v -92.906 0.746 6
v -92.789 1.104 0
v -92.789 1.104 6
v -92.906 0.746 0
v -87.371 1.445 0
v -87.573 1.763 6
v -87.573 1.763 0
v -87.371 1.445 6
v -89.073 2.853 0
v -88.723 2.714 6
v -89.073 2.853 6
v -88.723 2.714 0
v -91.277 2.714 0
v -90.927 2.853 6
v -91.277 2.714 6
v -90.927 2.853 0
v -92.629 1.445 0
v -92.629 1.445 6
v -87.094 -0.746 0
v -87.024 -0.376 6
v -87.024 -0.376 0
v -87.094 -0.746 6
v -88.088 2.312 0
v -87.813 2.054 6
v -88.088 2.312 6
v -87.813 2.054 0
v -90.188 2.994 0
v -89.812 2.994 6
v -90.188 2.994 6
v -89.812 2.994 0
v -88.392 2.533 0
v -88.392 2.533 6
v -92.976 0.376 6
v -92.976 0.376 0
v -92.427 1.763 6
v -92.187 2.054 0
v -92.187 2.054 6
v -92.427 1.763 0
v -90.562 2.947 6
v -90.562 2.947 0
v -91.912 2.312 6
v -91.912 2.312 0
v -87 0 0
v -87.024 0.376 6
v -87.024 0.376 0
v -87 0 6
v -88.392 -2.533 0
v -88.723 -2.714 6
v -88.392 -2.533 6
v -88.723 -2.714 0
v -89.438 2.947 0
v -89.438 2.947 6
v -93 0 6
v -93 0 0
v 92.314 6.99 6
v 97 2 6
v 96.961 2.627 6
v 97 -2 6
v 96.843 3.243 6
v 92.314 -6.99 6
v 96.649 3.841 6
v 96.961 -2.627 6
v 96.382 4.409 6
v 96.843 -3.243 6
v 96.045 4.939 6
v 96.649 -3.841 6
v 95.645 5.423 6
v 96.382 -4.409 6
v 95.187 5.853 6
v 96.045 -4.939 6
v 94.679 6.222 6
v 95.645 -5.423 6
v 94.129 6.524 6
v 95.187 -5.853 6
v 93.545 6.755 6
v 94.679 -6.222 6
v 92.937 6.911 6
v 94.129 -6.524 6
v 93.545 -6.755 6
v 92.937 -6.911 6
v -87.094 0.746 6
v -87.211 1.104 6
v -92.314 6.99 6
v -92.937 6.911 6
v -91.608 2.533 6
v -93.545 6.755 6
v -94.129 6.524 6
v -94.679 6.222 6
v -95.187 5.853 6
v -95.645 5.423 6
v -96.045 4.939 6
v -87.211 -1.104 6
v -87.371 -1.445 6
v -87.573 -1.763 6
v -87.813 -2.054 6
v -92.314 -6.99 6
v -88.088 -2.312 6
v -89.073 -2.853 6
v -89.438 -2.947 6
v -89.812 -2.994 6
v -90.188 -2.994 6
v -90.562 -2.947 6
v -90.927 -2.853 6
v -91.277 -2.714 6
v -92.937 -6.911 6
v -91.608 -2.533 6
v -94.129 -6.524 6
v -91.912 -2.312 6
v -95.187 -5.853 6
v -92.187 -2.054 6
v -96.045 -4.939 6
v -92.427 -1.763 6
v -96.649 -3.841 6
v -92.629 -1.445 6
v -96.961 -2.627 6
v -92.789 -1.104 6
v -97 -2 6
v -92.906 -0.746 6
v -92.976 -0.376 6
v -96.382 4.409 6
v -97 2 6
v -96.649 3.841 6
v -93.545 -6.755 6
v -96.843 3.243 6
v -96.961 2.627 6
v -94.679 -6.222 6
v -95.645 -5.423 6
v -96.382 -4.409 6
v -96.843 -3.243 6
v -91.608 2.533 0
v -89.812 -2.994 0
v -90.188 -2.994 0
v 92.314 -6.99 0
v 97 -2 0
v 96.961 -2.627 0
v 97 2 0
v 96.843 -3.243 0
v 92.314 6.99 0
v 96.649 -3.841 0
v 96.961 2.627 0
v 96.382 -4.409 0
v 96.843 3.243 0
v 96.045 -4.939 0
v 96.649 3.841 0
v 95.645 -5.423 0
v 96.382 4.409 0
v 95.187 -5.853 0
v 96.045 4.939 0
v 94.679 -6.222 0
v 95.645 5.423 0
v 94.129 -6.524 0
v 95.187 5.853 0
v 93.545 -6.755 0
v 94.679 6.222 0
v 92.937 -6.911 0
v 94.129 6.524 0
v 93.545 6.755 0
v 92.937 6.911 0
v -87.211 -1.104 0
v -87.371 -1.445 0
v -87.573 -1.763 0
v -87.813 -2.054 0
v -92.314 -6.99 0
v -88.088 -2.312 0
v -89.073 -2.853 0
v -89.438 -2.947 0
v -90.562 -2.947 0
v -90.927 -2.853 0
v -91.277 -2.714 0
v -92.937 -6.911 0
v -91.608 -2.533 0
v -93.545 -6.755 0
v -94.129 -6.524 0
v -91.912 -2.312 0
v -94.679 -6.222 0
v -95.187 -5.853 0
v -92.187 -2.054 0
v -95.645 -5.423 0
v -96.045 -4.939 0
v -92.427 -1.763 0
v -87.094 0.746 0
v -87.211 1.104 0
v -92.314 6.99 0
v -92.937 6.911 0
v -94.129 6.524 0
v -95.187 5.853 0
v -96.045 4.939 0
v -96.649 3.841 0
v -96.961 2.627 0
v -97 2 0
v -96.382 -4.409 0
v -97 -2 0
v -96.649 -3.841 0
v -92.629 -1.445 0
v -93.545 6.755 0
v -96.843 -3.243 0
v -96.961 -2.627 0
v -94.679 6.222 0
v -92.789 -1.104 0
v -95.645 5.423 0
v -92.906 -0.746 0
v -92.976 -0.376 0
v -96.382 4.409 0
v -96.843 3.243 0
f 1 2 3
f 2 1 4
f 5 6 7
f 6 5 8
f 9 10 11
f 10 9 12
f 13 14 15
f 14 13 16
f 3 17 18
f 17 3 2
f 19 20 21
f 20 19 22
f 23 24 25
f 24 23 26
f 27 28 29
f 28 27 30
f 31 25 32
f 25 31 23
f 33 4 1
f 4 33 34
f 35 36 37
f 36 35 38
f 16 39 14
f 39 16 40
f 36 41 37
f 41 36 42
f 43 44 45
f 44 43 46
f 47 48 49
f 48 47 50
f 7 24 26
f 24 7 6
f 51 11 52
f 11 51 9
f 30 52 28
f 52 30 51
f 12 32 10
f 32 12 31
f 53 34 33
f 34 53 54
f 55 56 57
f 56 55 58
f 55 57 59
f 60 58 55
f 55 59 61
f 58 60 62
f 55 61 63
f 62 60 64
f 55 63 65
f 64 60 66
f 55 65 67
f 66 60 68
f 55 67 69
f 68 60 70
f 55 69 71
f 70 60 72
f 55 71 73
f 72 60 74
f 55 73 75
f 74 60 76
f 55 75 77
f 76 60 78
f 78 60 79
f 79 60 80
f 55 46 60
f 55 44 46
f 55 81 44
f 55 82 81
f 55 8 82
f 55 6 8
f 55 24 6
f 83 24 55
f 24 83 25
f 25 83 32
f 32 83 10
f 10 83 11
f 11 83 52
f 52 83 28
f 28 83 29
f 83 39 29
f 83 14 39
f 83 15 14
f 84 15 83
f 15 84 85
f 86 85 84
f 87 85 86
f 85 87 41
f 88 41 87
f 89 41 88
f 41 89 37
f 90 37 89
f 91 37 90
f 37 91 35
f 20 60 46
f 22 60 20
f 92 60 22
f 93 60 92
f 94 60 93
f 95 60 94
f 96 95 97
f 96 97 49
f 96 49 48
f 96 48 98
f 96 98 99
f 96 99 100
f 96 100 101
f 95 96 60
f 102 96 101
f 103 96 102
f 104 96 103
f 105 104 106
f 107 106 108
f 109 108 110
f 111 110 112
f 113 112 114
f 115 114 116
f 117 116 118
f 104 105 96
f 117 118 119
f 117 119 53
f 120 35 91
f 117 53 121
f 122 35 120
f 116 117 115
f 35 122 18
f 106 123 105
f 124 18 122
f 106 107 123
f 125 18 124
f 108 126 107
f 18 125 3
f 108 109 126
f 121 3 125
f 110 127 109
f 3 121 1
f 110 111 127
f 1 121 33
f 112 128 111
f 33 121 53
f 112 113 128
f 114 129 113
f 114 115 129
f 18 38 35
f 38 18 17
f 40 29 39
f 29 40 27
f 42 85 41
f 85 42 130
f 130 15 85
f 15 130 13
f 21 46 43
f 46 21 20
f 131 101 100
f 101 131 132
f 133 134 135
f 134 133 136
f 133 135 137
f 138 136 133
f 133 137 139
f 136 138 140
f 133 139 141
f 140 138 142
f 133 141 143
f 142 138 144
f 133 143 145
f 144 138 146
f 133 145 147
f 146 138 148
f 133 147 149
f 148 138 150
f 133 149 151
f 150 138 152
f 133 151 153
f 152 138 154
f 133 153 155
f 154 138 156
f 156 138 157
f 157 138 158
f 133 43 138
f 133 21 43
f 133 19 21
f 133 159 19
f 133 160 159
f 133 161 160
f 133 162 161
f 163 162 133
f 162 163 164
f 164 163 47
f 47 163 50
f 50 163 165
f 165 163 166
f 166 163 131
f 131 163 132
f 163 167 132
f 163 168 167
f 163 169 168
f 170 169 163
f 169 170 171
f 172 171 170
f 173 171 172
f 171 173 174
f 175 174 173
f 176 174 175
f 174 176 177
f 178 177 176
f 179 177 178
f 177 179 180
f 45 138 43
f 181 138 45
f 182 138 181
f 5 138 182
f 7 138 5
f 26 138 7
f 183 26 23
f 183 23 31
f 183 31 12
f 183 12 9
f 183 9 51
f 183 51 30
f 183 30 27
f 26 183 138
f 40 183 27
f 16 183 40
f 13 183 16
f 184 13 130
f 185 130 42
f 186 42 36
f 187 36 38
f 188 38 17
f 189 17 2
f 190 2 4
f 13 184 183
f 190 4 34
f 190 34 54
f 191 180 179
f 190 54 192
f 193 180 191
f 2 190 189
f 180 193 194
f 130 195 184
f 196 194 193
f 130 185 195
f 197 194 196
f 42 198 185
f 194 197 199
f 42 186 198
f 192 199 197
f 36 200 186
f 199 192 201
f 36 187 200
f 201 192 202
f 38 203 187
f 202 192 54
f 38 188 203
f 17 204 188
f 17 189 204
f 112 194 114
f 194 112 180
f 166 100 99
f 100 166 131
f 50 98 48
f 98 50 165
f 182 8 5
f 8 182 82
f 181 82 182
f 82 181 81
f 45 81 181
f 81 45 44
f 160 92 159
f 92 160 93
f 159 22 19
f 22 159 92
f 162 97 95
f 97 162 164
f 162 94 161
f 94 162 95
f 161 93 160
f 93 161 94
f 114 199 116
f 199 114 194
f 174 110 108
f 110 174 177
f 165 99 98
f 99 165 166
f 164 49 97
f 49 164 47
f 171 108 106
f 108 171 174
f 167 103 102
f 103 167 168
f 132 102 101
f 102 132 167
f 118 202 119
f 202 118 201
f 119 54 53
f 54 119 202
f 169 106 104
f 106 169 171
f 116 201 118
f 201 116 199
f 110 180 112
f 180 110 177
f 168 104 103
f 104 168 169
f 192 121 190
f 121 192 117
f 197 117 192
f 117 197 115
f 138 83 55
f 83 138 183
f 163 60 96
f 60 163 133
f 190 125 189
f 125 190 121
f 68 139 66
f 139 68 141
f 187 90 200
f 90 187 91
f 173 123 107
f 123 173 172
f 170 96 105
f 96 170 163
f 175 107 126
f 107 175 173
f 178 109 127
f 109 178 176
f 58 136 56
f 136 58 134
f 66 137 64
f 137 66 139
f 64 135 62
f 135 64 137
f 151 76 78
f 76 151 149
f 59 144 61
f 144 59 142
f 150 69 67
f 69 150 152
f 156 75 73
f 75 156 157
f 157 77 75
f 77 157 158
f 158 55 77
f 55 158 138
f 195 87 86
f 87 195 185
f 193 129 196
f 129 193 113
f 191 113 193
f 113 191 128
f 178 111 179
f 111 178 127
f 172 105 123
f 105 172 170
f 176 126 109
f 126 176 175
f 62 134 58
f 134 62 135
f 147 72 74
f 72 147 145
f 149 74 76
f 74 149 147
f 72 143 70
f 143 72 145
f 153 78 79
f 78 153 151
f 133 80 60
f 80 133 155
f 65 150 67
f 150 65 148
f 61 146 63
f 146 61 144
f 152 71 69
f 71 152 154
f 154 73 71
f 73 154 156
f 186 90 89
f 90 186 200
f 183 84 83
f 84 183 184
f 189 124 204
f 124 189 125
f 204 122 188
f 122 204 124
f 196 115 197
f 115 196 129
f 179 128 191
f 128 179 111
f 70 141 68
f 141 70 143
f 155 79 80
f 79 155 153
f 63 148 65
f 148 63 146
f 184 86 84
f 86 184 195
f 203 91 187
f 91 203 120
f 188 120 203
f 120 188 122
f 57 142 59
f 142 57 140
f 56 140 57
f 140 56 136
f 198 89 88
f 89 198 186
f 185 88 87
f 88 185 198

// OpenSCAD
$fn = 50;


difference() {
	union() {
		hull() {
			translate(v = [-92.0000000000, 2.0000000000, 0]) {
				cylinder(h = 6, r = 5);
			}
			translate(v = [92.0000000000, 2.0000000000, 0]) {
				cylinder(h = 6, r = 5);
			}
			translate(v = [-92.0000000000, -2.0000000000, 0]) {
				cylinder(h = 6, r = 5);
			}
			translate(v = [92.0000000000, -2.0000000000, 0]) {
				cylinder(h = 6, r = 5);
			}
		}
	}
	union() {
		translate(v = [-90.0000000000, 0.0000000000, 0]) {
			cylinder(h = 6, r = 3.0000000000);
		}
		translate(v = [-90.0000000000, 0.0000000000, 0]) {
			cylinder(h = 6, r = 1.5000000000);
		}
		translate(v = [-90.0000000000, 0.0000000000, 0]) {
			cylinder(h = 6, r = 1.5000000000);
		}
		translate(v = [-90.0000000000, 0.0000000000, 0]) {
			cylinder(h = 6, r = 1.5000000000);
		}
	}
}
